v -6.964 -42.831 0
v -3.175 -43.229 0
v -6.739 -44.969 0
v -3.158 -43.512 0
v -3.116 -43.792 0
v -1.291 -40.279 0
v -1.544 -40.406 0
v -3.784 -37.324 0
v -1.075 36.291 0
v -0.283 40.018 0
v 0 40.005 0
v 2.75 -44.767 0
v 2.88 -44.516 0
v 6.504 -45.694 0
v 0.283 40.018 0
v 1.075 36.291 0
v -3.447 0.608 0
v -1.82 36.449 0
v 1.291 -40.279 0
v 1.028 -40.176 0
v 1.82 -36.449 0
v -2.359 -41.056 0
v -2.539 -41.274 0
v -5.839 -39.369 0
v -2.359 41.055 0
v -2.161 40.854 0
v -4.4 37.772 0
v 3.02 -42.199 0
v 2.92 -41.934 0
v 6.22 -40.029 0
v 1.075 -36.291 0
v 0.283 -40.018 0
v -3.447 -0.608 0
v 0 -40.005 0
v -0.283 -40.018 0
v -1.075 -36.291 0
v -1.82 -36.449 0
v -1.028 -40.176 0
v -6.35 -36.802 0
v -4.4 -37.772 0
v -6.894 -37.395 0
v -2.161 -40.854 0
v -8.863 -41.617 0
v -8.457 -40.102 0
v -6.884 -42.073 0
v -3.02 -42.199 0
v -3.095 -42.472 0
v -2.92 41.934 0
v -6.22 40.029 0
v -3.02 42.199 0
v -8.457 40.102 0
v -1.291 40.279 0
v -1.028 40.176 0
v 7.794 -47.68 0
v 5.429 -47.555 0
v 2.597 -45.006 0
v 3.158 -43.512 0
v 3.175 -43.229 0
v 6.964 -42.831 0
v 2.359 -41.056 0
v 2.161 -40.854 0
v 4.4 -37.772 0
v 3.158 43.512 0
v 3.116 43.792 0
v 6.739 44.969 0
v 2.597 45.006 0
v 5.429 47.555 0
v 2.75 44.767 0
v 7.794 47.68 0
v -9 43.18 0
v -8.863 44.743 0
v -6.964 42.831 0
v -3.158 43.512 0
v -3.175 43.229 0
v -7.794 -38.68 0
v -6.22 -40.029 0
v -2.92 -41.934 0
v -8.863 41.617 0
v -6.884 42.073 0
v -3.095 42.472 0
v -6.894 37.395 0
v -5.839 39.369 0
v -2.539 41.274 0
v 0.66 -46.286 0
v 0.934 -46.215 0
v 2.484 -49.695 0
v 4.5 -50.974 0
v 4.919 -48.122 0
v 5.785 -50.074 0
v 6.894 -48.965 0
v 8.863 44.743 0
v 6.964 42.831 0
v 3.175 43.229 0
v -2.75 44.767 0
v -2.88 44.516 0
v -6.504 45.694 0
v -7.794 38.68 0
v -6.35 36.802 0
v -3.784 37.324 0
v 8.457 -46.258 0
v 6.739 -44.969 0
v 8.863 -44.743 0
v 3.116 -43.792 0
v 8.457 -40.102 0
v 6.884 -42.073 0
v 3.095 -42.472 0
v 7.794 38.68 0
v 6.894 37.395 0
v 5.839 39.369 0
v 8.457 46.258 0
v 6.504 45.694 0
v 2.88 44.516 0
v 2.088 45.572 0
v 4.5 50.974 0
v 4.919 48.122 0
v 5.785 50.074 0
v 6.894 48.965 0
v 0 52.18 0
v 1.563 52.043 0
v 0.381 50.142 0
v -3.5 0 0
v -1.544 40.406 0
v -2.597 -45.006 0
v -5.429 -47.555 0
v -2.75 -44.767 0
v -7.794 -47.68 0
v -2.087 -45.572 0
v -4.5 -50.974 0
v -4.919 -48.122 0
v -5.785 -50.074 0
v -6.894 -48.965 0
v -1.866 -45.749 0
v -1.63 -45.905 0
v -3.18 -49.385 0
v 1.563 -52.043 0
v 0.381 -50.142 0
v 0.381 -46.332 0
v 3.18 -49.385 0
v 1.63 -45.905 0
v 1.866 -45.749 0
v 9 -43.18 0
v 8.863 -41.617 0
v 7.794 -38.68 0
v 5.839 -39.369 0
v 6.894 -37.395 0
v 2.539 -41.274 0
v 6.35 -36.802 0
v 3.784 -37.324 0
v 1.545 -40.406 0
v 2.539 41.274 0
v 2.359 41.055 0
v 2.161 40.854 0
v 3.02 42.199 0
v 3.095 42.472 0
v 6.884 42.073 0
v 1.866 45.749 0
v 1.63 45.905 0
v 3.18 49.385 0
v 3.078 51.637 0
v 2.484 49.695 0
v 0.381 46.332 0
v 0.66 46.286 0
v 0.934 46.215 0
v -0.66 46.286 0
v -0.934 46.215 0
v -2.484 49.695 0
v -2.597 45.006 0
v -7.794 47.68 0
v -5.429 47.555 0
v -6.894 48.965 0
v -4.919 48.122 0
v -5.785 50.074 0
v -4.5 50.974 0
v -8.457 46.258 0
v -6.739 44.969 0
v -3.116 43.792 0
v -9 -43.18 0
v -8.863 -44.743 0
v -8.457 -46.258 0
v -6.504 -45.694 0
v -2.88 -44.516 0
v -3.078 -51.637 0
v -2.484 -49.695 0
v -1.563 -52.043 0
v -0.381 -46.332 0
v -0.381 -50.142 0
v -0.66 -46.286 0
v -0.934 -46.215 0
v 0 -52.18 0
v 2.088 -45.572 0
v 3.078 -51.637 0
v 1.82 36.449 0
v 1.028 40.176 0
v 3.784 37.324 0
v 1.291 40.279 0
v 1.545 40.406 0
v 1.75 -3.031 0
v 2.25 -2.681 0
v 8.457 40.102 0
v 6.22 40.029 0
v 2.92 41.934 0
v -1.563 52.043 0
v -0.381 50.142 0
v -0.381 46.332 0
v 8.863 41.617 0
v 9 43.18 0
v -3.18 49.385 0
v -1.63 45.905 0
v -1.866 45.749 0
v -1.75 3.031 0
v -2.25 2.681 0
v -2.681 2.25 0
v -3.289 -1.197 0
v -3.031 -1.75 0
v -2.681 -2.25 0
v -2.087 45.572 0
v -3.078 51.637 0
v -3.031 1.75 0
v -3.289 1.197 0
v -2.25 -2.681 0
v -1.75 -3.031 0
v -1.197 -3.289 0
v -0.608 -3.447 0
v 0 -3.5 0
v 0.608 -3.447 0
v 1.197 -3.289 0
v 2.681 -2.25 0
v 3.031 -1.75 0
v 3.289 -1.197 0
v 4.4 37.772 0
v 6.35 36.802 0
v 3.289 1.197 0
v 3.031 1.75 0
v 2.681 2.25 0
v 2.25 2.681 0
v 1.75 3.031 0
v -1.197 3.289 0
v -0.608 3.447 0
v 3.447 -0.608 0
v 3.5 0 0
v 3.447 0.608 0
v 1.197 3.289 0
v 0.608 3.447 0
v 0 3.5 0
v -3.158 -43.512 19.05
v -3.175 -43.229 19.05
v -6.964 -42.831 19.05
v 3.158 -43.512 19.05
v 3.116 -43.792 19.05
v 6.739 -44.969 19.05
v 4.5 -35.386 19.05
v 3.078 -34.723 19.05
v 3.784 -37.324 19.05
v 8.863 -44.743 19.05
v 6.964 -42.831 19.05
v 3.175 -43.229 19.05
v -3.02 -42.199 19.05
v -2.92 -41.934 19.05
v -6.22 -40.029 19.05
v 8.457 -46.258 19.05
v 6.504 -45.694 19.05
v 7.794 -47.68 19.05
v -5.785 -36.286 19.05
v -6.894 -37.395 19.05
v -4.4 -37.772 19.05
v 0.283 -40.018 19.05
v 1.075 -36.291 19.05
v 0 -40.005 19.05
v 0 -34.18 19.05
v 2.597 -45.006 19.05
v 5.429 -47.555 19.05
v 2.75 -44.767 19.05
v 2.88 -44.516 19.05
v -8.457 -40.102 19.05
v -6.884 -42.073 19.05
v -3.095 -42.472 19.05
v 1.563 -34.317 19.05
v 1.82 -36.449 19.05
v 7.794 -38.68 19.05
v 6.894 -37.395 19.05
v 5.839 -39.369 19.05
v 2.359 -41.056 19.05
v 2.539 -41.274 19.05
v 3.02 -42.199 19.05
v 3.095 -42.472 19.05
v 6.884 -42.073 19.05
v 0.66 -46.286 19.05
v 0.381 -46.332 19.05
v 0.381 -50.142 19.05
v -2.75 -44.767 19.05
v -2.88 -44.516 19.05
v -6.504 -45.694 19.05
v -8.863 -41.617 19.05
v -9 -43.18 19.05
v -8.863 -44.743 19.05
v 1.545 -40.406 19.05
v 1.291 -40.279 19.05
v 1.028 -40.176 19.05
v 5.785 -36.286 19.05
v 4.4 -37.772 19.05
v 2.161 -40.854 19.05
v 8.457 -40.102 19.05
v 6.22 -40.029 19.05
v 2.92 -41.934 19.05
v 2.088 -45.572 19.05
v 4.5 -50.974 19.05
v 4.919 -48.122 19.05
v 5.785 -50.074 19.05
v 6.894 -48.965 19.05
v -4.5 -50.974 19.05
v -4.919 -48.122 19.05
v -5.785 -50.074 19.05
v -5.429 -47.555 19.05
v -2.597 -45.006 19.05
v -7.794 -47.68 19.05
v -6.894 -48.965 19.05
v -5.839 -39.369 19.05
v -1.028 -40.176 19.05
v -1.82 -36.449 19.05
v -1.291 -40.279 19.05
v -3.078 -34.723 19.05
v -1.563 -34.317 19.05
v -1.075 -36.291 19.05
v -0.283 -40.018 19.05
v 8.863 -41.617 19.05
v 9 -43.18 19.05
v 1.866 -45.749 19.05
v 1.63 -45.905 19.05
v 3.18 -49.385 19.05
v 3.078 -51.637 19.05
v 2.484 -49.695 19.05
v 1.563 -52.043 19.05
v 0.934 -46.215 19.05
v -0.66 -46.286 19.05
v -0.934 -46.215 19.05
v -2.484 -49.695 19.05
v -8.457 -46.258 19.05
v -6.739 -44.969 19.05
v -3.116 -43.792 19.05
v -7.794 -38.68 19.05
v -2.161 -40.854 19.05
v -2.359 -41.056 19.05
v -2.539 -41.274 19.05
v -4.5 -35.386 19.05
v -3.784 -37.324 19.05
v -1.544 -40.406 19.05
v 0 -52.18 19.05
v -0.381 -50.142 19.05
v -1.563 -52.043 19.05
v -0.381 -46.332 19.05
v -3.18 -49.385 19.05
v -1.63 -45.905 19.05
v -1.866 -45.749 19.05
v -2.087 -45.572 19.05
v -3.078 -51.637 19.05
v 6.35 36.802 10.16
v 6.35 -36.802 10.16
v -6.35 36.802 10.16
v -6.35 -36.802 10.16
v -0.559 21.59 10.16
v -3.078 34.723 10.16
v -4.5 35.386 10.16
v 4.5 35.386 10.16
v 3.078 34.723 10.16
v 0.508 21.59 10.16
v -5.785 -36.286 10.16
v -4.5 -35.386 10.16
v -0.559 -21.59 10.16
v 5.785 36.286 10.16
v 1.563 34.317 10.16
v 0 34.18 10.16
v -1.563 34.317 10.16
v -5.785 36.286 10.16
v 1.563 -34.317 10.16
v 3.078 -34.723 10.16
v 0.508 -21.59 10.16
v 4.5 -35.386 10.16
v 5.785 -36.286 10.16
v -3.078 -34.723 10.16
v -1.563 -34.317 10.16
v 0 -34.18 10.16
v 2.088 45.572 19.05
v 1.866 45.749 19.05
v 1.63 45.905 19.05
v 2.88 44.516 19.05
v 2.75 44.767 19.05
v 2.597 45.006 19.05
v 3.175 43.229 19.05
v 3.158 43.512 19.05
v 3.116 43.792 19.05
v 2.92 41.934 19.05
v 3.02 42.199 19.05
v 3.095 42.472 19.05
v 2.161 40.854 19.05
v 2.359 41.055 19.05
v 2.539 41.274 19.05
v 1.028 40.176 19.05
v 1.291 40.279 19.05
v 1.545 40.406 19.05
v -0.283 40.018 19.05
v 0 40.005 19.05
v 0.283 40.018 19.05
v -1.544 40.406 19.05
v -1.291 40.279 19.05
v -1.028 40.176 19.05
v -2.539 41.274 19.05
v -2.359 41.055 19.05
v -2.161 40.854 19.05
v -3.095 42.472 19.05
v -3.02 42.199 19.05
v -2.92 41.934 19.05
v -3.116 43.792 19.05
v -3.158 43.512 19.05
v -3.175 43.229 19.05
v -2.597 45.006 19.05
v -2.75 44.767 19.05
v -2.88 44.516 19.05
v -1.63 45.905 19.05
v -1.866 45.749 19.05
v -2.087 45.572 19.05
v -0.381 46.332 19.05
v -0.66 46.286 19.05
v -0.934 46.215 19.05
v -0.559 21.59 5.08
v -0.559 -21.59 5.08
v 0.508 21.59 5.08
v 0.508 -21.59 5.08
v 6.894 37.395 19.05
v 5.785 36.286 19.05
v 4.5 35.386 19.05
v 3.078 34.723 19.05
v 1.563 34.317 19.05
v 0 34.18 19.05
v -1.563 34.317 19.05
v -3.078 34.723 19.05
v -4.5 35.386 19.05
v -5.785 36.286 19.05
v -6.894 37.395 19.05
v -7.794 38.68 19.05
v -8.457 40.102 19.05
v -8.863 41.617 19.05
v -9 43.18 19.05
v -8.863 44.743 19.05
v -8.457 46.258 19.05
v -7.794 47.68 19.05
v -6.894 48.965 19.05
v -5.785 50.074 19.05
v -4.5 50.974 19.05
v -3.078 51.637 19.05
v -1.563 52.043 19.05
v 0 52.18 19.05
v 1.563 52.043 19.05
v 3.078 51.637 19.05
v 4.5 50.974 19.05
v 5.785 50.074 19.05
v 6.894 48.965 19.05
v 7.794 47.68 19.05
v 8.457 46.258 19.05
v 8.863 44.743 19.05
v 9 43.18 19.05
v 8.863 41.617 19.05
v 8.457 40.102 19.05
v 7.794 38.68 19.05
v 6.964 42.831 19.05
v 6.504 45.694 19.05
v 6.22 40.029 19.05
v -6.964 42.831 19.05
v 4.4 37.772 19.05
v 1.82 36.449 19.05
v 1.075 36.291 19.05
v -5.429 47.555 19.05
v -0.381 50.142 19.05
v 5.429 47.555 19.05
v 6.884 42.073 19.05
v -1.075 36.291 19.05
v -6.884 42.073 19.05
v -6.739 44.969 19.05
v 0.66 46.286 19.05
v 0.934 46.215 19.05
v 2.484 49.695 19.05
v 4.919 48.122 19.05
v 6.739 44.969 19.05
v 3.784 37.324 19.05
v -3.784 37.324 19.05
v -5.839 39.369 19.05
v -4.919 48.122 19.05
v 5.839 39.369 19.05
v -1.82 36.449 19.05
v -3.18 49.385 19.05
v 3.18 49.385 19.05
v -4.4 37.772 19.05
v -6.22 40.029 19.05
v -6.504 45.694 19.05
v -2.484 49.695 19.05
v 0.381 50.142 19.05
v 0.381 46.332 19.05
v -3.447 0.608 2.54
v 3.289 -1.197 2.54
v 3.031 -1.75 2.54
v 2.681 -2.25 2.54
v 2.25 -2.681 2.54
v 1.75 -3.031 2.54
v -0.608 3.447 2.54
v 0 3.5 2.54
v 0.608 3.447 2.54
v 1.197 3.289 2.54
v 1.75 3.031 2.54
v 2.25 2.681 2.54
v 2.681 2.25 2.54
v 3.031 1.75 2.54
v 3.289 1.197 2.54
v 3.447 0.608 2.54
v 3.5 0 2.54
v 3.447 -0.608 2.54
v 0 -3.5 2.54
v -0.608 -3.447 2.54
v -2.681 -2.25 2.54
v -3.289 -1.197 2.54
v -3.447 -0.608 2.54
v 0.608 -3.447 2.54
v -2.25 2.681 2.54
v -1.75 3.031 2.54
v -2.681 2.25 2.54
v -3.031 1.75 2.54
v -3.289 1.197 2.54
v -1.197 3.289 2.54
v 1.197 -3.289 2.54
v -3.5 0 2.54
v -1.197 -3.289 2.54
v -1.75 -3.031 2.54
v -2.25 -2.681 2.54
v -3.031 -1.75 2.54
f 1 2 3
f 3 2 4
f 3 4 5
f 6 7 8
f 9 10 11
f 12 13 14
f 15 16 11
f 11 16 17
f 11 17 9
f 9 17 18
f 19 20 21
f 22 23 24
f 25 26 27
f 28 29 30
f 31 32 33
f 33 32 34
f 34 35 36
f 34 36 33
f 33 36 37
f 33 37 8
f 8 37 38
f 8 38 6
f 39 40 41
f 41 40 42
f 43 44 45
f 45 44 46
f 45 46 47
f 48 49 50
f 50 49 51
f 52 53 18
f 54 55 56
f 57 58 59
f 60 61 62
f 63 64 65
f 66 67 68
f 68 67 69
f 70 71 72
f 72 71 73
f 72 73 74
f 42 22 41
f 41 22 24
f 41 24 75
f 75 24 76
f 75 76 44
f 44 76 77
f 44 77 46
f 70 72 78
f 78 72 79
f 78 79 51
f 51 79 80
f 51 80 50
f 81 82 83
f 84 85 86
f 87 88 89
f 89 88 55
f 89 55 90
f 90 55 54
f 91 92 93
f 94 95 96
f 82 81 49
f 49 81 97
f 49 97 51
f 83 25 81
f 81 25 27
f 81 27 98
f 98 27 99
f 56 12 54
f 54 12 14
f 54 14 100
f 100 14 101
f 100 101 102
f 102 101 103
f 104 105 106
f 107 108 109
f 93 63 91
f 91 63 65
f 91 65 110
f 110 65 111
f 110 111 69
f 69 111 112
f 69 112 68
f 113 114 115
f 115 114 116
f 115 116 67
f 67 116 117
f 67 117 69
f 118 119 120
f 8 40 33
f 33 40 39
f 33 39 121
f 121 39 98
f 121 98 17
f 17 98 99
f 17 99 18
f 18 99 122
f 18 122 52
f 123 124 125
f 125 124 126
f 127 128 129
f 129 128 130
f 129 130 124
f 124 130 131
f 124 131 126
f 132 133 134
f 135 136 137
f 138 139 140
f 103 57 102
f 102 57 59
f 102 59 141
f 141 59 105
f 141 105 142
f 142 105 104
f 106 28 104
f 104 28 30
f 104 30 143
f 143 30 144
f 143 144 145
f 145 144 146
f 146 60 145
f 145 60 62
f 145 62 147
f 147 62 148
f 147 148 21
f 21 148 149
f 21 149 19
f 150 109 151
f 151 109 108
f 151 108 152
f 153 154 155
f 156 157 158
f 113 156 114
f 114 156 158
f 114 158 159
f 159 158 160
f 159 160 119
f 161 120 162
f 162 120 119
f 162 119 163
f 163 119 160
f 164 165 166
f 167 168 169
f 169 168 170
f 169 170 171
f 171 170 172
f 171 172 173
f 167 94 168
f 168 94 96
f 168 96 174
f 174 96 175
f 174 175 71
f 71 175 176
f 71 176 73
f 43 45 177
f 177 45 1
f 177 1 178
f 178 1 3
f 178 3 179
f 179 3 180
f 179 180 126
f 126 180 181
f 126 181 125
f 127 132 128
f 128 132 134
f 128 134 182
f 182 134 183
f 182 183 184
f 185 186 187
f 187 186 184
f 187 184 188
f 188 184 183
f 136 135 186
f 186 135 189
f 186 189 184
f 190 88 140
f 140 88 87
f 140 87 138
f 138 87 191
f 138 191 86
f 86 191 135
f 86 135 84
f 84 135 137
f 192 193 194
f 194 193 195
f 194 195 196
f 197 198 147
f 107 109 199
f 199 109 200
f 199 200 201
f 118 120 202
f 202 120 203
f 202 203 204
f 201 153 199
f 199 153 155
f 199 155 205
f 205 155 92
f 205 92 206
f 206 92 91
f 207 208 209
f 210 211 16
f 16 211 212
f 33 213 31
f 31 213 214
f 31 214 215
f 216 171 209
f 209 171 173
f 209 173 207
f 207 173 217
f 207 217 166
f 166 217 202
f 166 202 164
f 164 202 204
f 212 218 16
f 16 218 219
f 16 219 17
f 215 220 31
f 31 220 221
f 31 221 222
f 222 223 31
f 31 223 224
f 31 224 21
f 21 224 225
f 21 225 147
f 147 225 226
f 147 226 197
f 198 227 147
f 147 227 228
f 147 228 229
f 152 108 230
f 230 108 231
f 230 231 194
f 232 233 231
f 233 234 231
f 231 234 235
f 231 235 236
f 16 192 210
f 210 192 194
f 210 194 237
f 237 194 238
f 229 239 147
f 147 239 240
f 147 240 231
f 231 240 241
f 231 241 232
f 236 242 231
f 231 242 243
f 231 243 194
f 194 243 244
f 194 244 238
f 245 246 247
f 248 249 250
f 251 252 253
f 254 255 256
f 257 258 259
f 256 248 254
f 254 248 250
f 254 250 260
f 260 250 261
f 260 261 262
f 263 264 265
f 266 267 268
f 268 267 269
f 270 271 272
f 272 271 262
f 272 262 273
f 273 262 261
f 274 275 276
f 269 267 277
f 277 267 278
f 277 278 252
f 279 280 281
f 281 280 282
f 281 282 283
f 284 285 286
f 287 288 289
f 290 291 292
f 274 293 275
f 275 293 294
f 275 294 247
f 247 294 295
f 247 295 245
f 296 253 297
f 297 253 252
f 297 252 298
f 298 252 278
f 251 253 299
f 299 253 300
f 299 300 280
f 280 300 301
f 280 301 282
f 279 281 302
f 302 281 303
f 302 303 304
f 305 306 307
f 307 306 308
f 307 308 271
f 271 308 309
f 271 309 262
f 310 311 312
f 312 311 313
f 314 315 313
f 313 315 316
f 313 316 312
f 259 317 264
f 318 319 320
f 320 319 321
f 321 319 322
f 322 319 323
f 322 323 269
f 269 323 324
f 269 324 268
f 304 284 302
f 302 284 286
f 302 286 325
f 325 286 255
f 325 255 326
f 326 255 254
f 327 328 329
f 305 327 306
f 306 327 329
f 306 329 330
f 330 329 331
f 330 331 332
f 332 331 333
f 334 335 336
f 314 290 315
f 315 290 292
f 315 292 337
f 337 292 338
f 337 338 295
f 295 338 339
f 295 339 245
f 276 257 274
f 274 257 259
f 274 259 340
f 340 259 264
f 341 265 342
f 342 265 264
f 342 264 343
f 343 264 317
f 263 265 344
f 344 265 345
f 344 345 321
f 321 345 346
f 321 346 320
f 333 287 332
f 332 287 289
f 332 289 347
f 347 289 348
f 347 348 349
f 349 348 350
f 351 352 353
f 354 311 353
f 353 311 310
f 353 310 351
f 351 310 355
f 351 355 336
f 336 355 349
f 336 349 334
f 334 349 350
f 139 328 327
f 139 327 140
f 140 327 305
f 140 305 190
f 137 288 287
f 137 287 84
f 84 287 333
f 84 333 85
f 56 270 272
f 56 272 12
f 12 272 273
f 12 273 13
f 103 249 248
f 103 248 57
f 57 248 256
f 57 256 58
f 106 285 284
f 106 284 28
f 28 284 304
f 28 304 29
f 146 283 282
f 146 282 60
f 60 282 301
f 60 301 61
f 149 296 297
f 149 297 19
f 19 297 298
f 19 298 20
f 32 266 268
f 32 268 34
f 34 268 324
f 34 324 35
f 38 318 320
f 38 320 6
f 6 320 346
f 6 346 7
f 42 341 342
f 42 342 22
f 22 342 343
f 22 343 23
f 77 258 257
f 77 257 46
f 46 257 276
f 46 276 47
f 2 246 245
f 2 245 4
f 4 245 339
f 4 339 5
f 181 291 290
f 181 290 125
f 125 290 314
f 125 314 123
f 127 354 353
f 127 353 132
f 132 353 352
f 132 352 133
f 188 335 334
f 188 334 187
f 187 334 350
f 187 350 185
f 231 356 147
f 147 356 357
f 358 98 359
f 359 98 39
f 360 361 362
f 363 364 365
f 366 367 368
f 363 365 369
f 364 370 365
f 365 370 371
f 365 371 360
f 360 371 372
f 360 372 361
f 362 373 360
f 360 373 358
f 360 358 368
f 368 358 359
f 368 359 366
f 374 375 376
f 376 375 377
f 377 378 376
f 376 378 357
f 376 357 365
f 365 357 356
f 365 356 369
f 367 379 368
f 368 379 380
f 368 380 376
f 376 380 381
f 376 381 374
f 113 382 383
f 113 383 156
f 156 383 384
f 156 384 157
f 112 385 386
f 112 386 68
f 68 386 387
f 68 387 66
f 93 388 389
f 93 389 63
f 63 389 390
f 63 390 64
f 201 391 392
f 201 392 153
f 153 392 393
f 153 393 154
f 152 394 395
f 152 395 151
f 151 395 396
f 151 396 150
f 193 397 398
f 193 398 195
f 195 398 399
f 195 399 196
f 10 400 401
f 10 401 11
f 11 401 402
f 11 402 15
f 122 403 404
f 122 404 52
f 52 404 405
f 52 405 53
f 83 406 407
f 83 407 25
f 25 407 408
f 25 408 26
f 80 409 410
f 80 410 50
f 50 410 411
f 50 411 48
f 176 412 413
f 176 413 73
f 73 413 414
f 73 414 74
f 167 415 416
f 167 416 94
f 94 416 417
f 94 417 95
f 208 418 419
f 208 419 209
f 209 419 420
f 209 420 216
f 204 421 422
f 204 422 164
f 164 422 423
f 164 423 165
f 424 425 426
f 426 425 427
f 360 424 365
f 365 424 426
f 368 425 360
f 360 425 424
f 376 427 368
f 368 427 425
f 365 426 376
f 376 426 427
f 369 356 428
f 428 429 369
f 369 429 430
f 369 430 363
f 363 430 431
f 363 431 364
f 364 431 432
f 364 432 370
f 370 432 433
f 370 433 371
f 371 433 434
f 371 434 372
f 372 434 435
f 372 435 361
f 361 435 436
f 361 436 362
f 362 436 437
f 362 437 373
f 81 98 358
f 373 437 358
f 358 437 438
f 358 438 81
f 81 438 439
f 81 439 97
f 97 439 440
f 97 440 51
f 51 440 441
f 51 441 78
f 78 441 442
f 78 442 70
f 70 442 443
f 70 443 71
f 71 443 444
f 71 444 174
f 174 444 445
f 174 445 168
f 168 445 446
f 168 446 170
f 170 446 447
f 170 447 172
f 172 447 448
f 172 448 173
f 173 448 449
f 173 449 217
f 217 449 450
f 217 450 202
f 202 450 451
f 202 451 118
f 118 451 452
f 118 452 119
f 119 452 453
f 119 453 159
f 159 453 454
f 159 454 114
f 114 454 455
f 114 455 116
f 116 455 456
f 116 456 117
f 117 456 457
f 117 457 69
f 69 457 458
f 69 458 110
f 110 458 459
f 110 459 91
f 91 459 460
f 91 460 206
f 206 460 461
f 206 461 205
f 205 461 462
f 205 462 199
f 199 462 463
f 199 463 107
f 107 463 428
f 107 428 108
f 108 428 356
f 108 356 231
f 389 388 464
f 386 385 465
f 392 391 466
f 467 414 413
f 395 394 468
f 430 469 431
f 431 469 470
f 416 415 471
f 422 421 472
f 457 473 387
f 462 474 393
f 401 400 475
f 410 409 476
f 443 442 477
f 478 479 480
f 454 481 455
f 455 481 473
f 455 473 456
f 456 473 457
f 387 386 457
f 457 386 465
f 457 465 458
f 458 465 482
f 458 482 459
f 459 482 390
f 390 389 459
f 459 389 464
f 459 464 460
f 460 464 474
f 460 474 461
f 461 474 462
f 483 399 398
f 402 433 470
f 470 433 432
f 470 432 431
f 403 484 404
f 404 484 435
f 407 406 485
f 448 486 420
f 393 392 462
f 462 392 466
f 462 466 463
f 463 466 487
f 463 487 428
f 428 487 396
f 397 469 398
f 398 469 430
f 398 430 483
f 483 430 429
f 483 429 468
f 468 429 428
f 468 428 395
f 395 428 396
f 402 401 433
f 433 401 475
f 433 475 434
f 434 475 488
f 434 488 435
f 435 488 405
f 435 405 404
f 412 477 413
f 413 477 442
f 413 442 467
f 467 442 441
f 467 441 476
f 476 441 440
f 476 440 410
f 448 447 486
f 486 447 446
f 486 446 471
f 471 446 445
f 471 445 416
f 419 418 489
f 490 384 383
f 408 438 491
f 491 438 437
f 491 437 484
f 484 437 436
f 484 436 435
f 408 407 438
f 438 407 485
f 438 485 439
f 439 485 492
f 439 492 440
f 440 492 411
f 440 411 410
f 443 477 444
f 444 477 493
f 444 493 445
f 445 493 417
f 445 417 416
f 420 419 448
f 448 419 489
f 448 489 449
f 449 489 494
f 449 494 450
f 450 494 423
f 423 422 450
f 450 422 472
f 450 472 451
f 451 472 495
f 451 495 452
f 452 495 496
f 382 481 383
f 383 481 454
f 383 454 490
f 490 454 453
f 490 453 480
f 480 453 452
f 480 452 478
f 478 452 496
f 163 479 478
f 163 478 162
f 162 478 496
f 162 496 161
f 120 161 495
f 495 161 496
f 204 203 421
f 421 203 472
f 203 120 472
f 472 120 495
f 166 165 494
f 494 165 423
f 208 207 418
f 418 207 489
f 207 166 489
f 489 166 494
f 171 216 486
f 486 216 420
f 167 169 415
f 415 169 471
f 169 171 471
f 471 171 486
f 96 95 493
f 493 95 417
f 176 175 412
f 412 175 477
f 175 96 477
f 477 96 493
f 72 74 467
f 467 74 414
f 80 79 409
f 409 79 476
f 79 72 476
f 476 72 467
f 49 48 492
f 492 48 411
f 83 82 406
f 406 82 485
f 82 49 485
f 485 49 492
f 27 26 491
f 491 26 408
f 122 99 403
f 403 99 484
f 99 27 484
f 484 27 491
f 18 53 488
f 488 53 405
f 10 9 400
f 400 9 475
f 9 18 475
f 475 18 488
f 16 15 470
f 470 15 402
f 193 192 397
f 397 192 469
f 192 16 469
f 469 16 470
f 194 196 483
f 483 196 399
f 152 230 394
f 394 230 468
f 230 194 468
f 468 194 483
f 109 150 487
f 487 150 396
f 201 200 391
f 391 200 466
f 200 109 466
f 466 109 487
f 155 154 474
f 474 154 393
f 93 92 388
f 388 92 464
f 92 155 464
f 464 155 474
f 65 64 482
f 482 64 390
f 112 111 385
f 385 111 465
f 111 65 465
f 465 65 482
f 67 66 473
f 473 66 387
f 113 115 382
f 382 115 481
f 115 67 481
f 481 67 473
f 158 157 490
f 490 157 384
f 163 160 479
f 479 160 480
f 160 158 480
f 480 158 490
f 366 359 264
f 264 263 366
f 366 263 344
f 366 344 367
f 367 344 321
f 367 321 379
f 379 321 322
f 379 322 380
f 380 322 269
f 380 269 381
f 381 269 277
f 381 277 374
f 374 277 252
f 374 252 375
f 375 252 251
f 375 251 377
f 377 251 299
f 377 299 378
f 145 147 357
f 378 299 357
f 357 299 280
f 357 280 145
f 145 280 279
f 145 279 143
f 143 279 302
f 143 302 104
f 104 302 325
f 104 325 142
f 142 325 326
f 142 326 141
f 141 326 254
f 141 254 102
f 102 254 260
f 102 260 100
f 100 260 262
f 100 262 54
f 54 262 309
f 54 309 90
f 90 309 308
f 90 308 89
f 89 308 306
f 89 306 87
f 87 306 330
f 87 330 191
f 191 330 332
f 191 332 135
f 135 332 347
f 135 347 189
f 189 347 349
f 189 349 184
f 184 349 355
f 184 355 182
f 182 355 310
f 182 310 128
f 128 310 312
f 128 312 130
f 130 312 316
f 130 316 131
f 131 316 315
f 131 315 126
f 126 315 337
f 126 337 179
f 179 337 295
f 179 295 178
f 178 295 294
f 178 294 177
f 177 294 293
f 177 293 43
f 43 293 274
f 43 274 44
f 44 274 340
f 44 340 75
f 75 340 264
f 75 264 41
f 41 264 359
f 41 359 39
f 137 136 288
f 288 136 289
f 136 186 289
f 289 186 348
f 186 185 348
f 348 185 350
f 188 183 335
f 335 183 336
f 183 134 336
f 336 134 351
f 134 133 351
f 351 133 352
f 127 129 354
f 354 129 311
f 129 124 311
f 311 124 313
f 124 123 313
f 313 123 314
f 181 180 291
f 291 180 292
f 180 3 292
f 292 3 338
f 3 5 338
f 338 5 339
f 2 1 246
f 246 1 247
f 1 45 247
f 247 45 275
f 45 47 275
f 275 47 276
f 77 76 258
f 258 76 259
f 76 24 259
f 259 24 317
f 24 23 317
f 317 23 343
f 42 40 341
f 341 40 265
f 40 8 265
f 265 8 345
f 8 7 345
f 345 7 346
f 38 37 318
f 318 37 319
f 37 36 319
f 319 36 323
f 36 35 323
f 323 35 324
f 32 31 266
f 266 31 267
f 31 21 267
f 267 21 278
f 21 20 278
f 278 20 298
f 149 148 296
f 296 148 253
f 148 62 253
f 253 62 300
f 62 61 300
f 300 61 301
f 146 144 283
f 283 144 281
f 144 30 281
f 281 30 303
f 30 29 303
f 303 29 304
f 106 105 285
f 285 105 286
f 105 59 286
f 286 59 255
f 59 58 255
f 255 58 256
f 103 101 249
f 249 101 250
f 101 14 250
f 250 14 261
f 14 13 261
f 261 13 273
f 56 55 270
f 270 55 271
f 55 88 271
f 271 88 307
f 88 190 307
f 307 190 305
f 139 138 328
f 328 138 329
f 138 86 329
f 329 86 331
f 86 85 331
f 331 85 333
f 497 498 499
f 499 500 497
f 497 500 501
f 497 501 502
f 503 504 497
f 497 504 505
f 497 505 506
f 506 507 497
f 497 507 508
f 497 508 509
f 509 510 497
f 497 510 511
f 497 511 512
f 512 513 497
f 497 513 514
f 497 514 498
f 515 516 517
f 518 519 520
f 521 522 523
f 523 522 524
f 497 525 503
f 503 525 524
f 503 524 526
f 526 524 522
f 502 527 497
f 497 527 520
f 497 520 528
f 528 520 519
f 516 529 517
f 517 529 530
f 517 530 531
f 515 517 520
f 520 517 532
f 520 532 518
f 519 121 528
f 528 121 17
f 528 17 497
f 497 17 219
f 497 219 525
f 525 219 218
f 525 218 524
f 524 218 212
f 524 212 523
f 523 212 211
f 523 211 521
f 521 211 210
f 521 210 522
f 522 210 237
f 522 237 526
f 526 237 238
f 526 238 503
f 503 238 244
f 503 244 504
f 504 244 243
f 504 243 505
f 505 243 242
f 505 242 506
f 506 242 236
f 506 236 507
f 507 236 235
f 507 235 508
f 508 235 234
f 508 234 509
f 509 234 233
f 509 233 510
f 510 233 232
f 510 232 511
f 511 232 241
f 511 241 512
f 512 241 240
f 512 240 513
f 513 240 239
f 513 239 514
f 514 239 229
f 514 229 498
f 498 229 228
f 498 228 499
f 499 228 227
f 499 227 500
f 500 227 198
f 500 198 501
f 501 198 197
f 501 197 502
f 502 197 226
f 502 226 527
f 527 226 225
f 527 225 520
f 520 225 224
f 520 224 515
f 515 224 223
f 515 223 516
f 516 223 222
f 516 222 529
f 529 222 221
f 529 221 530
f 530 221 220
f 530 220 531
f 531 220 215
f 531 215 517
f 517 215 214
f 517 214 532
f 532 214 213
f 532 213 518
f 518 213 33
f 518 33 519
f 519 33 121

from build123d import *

# Parameters (mm, degrees)
SKETCH1_W                = 12.7
SKETCH1_H                = 86.36
BOSS_EXTRUDE1_DEPTH      = 10.16
SKETCH2_W                = 1.0668
SKETCH2_H                = 43.18
CUT_EXTRUDE1_DEPTH       = 5.08
BOSS_EXTRUDE3_START      = -10.16
SKETCH12_R               = 9
BOSS_EXTRUDE3_DEPTH      = 19.05
SKETCH13_R               = 3.175
CUT_EXTRUDE3_DEPTH       = 57.273038837
SKETCH15_W               = 0.762
SKETCH15_H               = 3.81
CUT_EXTRUDE4_DEPTH       = 57.273038837
CIRPATTERN1_COUNT        = 15
MIRROR2_COPY_1_SKETCH_W  = 0.762
MIRROR2_COPY_1_SKETCH_H  = 3.81
MIRROR2_COPY_1_DEPTH     = 57.273038837
MIRROR2_COPY_2_SKETCH_W  = 0.762
MIRROR2_COPY_2_SKETCH_H  = 3.81
MIRROR2_COPY_2_DEPTH     = 57.273038837
MIRROR2_COPY_3_SKETCH_W  = 0.762
MIRROR2_COPY_3_SKETCH_H  = 3.81
MIRROR2_COPY_3_DEPTH     = 57.273038837
MIRROR2_COPY_4_SKETCH_W  = 0.762
MIRROR2_COPY_4_SKETCH_H  = 3.81
MIRROR2_COPY_4_DEPTH     = 57.273038837
MIRROR2_COPY_5_SKETCH_W  = 0.762
MIRROR2_COPY_5_SKETCH_H  = 3.81
MIRROR2_COPY_5_DEPTH     = 57.273038837
MIRROR2_COPY_6_SKETCH_W  = 0.762
MIRROR2_COPY_6_SKETCH_H  = 3.81
MIRROR2_COPY_6_DEPTH     = 57.273038837
MIRROR2_COPY_7_SKETCH_W  = 0.762
MIRROR2_COPY_7_SKETCH_H  = 3.81
MIRROR2_COPY_7_DEPTH     = 57.273038837
MIRROR2_COPY_8_SKETCH_W  = 0.762
MIRROR2_COPY_8_SKETCH_H  = 3.81
MIRROR2_COPY_8_DEPTH     = 57.273038837
MIRROR2_COPY_9_SKETCH_W  = 0.762
MIRROR2_COPY_9_SKETCH_H  = 3.81
MIRROR2_COPY_9_DEPTH     = 57.273038837
MIRROR2_COPY_10_SKETCH_W = 0.762
MIRROR2_COPY_10_SKETCH_H = 3.81
MIRROR2_COPY_10_DEPTH    = 57.273038837
MIRROR2_COPY_11_SKETCH_W = 0.762
MIRROR2_COPY_11_SKETCH_H = 3.81
MIRROR2_COPY_11_DEPTH    = 57.273038837
MIRROR2_COPY_12_SKETCH_W = 0.762
MIRROR2_COPY_12_SKETCH_H = 3.81
MIRROR2_COPY_12_DEPTH    = 57.273038837
MIRROR2_COPY_13_SKETCH_W = 0.762
MIRROR2_COPY_13_SKETCH_H = 3.81
MIRROR2_COPY_13_DEPTH    = 57.273038837
MIRROR2_COPY_14_SKETCH_W = 0.762
MIRROR2_COPY_14_SKETCH_H = 3.81
MIRROR2_COPY_14_DEPTH    = 57.273038837
M6_CLEARANCE_HOLE1_D     = 7
M6_CLEARANCE_HOLE1_DEPTH = 2.54


with BuildPart() as part:
    # Sketch1 → Boss-Extrude1 (new body)
    with BuildSketch(Plane.XY):
        Rectangle(SKETCH1_W, SKETCH1_H)
    extrude(amount=BOSS_EXTRUDE1_DEPTH)

    # Sketch2 → Cut-Extrude1 (cut)
    with BuildSketch(Plane.XY.offset(10.16)):
        with Locations((-0.0254, 0)):
            Rectangle(SKETCH2_W, SKETCH2_H)
    extrude(amount=-CUT_EXTRUDE1_DEPTH, mode=Mode.SUBTRACT)

    # Sketch12 → Boss-Extrude3 (add)
    with BuildSketch(Plane.XY.offset(10.16).offset(BOSS_EXTRUDE3_START)):
        with Locations((0, 43.18)):
            Circle(SKETCH12_R)
    boss_extrude3 = extrude(amount=BOSS_EXTRUDE3_DEPTH)

    # Sketch13 → Cut-Extrude3 (cut, through all)
    with BuildSketch(Plane.XY.offset(19.05)):
        with Locations((0, 43.18)):
            Circle(SKETCH13_R)
    cut_extrude3 = extrude(amount=-CUT_EXTRUDE3_DEPTH, mode=Mode.SUBTRACT)

    # Sketch15 → Cut-Extrude4 (cut, through all)
    with BuildSketch(Plane.XY.offset(19.05)):
        with Locations((0, 48.237057106)):
            Rectangle(SKETCH15_W, SKETCH15_H)
    cut_extrude4 = extrude(amount=-CUT_EXTRUDE4_DEPTH, mode=Mode.SUBTRACT)

    # CirPattern1: Cut-Extrude4 ×15 about axis
    cirpattern1_axis = Axis((0, 43.18, 0), (0, 0, 1))
    for i in range(1, CIRPATTERN1_COUNT):
        add(cut_extrude4.rotate(cirpattern1_axis, i * 360 / CIRPATTERN1_COUNT), mode=Mode.SUBTRACT)

    # Mirror2: Boss-Extrude3, Cut-Extrude3, Cut-Extrude4 across plane
    add(boss_extrude3.mirror(Plane.ZX))
    add(cut_extrude3.mirror(Plane.ZX), mode=Mode.SUBTRACT)
    add(cut_extrude4.mirror(Plane.ZX), mode=Mode.SUBTRACT)

    # Mirror2 copy 1 sketch → Mirror2 copy 1 (cut, through all)
    with BuildSketch(Plane(origin=(17.562888248, -3.733107139, 19.05), x_dir=(0.9135454576426009, -0.4067366430758002, 0), z_dir=(0, 0, 1))):
        with Locations((0, -48.237057106)):
            Rectangle(MIRROR2_COPY_1_SKETCH_W, MIRROR2_COPY_1_SKETCH_H)
    extrude(amount=-MIRROR2_COPY_1_DEPTH, mode=Mode.SUBTRACT)

    # Mirror2 copy 2 sketch → Mirror2 copy 2 (cut, through all)
    with BuildSketch(Plane(origin=(32.088993564, -14.286940417, 19.05), x_dir=(0.6691306063588582, -0.7431448254773942, 0), z_dir=(0, 0, 1))):
        with Locations((0, -48.237057106)):
            Rectangle(MIRROR2_COPY_2_SKETCH_W, MIRROR2_COPY_2_SKETCH_H)
    extrude(amount=-MIRROR2_COPY_2_DEPTH, mode=Mode.SUBTRACT)

    # Mirror2 copy 3 sketch → Mirror2 copy 3 (cut, through all)
    with BuildSketch(Plane(origin=(41.066620374, -29.836646183, 19.05), x_dir=(0.30901699437494745, -0.9510565162951535, 0), z_dir=(0, 0, 1))):
        with Locations((0, -48.237057106)):
            Rectangle(MIRROR2_COPY_3_SKETCH_W, MIRROR2_COPY_3_SKETCH_H)
    extrude(amount=-MIRROR2_COPY_3_DEPTH, mode=Mode.SUBTRACT)

    # Mirror2 copy 4 sketch → Mirror2 copy 4 (cut, through all)
    with BuildSketch(Plane(origin=(42.943455442, -47.693539044, 19.05), x_dir=(-0.10452846326765355, -0.9945218953682733, 0), z_dir=(0, 0, 1))):
        with Locations((0, -48.237057106)):
            Rectangle(MIRROR2_COPY_4_SKETCH_W, MIRROR2_COPY_4_SKETCH_H)
    extrude(amount=-MIRROR2_COPY_4_DEPTH, mode=Mode.SUBTRACT)

    # Mirror2 copy 5 sketch → Mirror2 copy 5 (cut, through all)
    with BuildSketch(Plane(origin=(37.394976935, -64.77, 19.05), x_dir=(-0.4999999999999998, -0.8660254037844387, 0), z_dir=(0, 0, 1))):
        with Locations((0, -48.237057106)):
            Rectangle(MIRROR2_COPY_5_SKETCH_W, MIRROR2_COPY_5_SKETCH_H)
    extrude(amount=-MIRROR2_COPY_5_DEPTH, mode=Mode.SUBTRACT)

    # Mirror2 copy 6 sketch → Mirror2 copy 6 (cut, through all)
    with BuildSketch(Plane(origin=(25.380567194, -78.113353817, 19.05), x_dir=(-0.8090169943749473, -0.5877852522924732, 0), z_dir=(0, 0, 1))):
        with Locations((0, -48.237057106)):
            Rectangle(MIRROR2_COPY_6_SKETCH_W, MIRROR2_COPY_6_SKETCH_H)
    extrude(amount=-MIRROR2_COPY_6_DEPTH, mode=Mode.SUBTRACT)

    # Mirror2 copy 7 sketch → Mirror2 copy 7 (cut, through all)
    with BuildSketch(Plane(origin=(8.97762681, -85.4164134, 19.05), x_dir=(-0.9781476007338057, -0.20791169081775931, 0), z_dir=(0, 0, 1))):
        with Locations((0, -48.237057106)):
            Rectangle(MIRROR2_COPY_7_SKETCH_W, MIRROR2_COPY_7_SKETCH_H)
    extrude(amount=-MIRROR2_COPY_7_DEPTH, mode=Mode.SUBTRACT)

    # Mirror2 copy 8 sketch → Mirror2 copy 8 (cut, through all)
    with BuildSketch(Plane(origin=(-8.97762681, -85.4164134, 19.05), x_dir=(-0.9781476007338056, 0.2079116908177595, 0), z_dir=(0, 0, 1))):
        with Locations((0, -48.237057106)):
            Rectangle(MIRROR2_COPY_8_SKETCH_W, MIRROR2_COPY_8_SKETCH_H)
    extrude(amount=-MIRROR2_COPY_8_DEPTH, mode=Mode.SUBTRACT)

    # Mirror2 copy 9 sketch → Mirror2 copy 9 (cut, through all)
    with BuildSketch(Plane(origin=(-25.380567194, -78.113353817, 19.05), x_dir=(-0.8090169943749476, 0.587785252292473, 0), z_dir=(0, 0, 1))):
        with Locations((0, -48.237057106)):
            Rectangle(MIRROR2_COPY_9_SKETCH_W, MIRROR2_COPY_9_SKETCH_H)
    extrude(amount=-MIRROR2_COPY_9_DEPTH, mode=Mode.SUBTRACT)

    # Mirror2 copy 10 sketch → Mirror2 copy 10 (cut, through all)
    with BuildSketch(Plane(origin=(-37.394976935, -64.77, 19.05), x_dir=(-0.5000000000000004, 0.8660254037844384, 0), z_dir=(0, 0, 1))):
        with Locations((0, -48.237057106)):
            Rectangle(MIRROR2_COPY_10_SKETCH_W, MIRROR2_COPY_10_SKETCH_H)
    extrude(amount=-MIRROR2_COPY_10_DEPTH, mode=Mode.SUBTRACT)

    # Mirror2 copy 11 sketch → Mirror2 copy 11 (cut, through all)
    with BuildSketch(Plane(origin=(-42.943455442, -47.693539044, 19.05), x_dir=(-0.10452846326765336, 0.9945218953682734, 0), z_dir=(0, 0, 1))):
        with Locations((0, -48.237057106)):
            Rectangle(MIRROR2_COPY_11_SKETCH_W, MIRROR2_COPY_11_SKETCH_H)
    extrude(amount=-MIRROR2_COPY_11_DEPTH, mode=Mode.SUBTRACT)

    # Mirror2 copy 12 sketch → Mirror2 copy 12 (cut, through all)
    with BuildSketch(Plane(origin=(-41.066620374, -29.836646183, 19.05), x_dir=(0.30901699437494723, 0.9510565162951536, 0), z_dir=(0, 0, 1))):
        with Locations((0, -48.237057106)):
            Rectangle(MIRROR2_COPY_12_SKETCH_W, MIRROR2_COPY_12_SKETCH_H)
    extrude(amount=-MIRROR2_COPY_12_DEPTH, mode=Mode.SUBTRACT)

    # Mirror2 copy 13 sketch → Mirror2 copy 13 (cut, through all)
    with BuildSketch(Plane(origin=(-32.088993564, -14.286940417, 19.05), x_dir=(0.6691306063588578, 0.7431448254773946, 0), z_dir=(0, 0, 1))):
        with Locations((0, -48.237057106)):
            Rectangle(MIRROR2_COPY_13_SKETCH_W, MIRROR2_COPY_13_SKETCH_H)
    extrude(amount=-MIRROR2_COPY_13_DEPTH, mode=Mode.SUBTRACT)

    # Mirror2 copy 14 sketch → Mirror2 copy 14 (cut, through all)
    with BuildSketch(Plane(origin=(-17.562888248, -3.733107139, 19.05), x_dir=(0.913545457642601, 0.40673664307580015, 0), z_dir=(0, 0, 1))):
        with Locations((0, -48.237057106)):
            Rectangle(MIRROR2_COPY_14_SKETCH_W, MIRROR2_COPY_14_SKETCH_H)
    extrude(amount=-MIRROR2_COPY_14_DEPTH, mode=Mode.SUBTRACT)

    # M6 Clearance Hole1
    with Locations(Plane(origin=(0, 0, 0), x_dir=(-1, 0, 0), z_dir=(0, 0, -1))):
        with Locations((0, 0)):
            Hole(M6_CLEARANCE_HOLE1_D / 2, depth=M6_CLEARANCE_HOLE1_DEPTH)


solid = part.part
